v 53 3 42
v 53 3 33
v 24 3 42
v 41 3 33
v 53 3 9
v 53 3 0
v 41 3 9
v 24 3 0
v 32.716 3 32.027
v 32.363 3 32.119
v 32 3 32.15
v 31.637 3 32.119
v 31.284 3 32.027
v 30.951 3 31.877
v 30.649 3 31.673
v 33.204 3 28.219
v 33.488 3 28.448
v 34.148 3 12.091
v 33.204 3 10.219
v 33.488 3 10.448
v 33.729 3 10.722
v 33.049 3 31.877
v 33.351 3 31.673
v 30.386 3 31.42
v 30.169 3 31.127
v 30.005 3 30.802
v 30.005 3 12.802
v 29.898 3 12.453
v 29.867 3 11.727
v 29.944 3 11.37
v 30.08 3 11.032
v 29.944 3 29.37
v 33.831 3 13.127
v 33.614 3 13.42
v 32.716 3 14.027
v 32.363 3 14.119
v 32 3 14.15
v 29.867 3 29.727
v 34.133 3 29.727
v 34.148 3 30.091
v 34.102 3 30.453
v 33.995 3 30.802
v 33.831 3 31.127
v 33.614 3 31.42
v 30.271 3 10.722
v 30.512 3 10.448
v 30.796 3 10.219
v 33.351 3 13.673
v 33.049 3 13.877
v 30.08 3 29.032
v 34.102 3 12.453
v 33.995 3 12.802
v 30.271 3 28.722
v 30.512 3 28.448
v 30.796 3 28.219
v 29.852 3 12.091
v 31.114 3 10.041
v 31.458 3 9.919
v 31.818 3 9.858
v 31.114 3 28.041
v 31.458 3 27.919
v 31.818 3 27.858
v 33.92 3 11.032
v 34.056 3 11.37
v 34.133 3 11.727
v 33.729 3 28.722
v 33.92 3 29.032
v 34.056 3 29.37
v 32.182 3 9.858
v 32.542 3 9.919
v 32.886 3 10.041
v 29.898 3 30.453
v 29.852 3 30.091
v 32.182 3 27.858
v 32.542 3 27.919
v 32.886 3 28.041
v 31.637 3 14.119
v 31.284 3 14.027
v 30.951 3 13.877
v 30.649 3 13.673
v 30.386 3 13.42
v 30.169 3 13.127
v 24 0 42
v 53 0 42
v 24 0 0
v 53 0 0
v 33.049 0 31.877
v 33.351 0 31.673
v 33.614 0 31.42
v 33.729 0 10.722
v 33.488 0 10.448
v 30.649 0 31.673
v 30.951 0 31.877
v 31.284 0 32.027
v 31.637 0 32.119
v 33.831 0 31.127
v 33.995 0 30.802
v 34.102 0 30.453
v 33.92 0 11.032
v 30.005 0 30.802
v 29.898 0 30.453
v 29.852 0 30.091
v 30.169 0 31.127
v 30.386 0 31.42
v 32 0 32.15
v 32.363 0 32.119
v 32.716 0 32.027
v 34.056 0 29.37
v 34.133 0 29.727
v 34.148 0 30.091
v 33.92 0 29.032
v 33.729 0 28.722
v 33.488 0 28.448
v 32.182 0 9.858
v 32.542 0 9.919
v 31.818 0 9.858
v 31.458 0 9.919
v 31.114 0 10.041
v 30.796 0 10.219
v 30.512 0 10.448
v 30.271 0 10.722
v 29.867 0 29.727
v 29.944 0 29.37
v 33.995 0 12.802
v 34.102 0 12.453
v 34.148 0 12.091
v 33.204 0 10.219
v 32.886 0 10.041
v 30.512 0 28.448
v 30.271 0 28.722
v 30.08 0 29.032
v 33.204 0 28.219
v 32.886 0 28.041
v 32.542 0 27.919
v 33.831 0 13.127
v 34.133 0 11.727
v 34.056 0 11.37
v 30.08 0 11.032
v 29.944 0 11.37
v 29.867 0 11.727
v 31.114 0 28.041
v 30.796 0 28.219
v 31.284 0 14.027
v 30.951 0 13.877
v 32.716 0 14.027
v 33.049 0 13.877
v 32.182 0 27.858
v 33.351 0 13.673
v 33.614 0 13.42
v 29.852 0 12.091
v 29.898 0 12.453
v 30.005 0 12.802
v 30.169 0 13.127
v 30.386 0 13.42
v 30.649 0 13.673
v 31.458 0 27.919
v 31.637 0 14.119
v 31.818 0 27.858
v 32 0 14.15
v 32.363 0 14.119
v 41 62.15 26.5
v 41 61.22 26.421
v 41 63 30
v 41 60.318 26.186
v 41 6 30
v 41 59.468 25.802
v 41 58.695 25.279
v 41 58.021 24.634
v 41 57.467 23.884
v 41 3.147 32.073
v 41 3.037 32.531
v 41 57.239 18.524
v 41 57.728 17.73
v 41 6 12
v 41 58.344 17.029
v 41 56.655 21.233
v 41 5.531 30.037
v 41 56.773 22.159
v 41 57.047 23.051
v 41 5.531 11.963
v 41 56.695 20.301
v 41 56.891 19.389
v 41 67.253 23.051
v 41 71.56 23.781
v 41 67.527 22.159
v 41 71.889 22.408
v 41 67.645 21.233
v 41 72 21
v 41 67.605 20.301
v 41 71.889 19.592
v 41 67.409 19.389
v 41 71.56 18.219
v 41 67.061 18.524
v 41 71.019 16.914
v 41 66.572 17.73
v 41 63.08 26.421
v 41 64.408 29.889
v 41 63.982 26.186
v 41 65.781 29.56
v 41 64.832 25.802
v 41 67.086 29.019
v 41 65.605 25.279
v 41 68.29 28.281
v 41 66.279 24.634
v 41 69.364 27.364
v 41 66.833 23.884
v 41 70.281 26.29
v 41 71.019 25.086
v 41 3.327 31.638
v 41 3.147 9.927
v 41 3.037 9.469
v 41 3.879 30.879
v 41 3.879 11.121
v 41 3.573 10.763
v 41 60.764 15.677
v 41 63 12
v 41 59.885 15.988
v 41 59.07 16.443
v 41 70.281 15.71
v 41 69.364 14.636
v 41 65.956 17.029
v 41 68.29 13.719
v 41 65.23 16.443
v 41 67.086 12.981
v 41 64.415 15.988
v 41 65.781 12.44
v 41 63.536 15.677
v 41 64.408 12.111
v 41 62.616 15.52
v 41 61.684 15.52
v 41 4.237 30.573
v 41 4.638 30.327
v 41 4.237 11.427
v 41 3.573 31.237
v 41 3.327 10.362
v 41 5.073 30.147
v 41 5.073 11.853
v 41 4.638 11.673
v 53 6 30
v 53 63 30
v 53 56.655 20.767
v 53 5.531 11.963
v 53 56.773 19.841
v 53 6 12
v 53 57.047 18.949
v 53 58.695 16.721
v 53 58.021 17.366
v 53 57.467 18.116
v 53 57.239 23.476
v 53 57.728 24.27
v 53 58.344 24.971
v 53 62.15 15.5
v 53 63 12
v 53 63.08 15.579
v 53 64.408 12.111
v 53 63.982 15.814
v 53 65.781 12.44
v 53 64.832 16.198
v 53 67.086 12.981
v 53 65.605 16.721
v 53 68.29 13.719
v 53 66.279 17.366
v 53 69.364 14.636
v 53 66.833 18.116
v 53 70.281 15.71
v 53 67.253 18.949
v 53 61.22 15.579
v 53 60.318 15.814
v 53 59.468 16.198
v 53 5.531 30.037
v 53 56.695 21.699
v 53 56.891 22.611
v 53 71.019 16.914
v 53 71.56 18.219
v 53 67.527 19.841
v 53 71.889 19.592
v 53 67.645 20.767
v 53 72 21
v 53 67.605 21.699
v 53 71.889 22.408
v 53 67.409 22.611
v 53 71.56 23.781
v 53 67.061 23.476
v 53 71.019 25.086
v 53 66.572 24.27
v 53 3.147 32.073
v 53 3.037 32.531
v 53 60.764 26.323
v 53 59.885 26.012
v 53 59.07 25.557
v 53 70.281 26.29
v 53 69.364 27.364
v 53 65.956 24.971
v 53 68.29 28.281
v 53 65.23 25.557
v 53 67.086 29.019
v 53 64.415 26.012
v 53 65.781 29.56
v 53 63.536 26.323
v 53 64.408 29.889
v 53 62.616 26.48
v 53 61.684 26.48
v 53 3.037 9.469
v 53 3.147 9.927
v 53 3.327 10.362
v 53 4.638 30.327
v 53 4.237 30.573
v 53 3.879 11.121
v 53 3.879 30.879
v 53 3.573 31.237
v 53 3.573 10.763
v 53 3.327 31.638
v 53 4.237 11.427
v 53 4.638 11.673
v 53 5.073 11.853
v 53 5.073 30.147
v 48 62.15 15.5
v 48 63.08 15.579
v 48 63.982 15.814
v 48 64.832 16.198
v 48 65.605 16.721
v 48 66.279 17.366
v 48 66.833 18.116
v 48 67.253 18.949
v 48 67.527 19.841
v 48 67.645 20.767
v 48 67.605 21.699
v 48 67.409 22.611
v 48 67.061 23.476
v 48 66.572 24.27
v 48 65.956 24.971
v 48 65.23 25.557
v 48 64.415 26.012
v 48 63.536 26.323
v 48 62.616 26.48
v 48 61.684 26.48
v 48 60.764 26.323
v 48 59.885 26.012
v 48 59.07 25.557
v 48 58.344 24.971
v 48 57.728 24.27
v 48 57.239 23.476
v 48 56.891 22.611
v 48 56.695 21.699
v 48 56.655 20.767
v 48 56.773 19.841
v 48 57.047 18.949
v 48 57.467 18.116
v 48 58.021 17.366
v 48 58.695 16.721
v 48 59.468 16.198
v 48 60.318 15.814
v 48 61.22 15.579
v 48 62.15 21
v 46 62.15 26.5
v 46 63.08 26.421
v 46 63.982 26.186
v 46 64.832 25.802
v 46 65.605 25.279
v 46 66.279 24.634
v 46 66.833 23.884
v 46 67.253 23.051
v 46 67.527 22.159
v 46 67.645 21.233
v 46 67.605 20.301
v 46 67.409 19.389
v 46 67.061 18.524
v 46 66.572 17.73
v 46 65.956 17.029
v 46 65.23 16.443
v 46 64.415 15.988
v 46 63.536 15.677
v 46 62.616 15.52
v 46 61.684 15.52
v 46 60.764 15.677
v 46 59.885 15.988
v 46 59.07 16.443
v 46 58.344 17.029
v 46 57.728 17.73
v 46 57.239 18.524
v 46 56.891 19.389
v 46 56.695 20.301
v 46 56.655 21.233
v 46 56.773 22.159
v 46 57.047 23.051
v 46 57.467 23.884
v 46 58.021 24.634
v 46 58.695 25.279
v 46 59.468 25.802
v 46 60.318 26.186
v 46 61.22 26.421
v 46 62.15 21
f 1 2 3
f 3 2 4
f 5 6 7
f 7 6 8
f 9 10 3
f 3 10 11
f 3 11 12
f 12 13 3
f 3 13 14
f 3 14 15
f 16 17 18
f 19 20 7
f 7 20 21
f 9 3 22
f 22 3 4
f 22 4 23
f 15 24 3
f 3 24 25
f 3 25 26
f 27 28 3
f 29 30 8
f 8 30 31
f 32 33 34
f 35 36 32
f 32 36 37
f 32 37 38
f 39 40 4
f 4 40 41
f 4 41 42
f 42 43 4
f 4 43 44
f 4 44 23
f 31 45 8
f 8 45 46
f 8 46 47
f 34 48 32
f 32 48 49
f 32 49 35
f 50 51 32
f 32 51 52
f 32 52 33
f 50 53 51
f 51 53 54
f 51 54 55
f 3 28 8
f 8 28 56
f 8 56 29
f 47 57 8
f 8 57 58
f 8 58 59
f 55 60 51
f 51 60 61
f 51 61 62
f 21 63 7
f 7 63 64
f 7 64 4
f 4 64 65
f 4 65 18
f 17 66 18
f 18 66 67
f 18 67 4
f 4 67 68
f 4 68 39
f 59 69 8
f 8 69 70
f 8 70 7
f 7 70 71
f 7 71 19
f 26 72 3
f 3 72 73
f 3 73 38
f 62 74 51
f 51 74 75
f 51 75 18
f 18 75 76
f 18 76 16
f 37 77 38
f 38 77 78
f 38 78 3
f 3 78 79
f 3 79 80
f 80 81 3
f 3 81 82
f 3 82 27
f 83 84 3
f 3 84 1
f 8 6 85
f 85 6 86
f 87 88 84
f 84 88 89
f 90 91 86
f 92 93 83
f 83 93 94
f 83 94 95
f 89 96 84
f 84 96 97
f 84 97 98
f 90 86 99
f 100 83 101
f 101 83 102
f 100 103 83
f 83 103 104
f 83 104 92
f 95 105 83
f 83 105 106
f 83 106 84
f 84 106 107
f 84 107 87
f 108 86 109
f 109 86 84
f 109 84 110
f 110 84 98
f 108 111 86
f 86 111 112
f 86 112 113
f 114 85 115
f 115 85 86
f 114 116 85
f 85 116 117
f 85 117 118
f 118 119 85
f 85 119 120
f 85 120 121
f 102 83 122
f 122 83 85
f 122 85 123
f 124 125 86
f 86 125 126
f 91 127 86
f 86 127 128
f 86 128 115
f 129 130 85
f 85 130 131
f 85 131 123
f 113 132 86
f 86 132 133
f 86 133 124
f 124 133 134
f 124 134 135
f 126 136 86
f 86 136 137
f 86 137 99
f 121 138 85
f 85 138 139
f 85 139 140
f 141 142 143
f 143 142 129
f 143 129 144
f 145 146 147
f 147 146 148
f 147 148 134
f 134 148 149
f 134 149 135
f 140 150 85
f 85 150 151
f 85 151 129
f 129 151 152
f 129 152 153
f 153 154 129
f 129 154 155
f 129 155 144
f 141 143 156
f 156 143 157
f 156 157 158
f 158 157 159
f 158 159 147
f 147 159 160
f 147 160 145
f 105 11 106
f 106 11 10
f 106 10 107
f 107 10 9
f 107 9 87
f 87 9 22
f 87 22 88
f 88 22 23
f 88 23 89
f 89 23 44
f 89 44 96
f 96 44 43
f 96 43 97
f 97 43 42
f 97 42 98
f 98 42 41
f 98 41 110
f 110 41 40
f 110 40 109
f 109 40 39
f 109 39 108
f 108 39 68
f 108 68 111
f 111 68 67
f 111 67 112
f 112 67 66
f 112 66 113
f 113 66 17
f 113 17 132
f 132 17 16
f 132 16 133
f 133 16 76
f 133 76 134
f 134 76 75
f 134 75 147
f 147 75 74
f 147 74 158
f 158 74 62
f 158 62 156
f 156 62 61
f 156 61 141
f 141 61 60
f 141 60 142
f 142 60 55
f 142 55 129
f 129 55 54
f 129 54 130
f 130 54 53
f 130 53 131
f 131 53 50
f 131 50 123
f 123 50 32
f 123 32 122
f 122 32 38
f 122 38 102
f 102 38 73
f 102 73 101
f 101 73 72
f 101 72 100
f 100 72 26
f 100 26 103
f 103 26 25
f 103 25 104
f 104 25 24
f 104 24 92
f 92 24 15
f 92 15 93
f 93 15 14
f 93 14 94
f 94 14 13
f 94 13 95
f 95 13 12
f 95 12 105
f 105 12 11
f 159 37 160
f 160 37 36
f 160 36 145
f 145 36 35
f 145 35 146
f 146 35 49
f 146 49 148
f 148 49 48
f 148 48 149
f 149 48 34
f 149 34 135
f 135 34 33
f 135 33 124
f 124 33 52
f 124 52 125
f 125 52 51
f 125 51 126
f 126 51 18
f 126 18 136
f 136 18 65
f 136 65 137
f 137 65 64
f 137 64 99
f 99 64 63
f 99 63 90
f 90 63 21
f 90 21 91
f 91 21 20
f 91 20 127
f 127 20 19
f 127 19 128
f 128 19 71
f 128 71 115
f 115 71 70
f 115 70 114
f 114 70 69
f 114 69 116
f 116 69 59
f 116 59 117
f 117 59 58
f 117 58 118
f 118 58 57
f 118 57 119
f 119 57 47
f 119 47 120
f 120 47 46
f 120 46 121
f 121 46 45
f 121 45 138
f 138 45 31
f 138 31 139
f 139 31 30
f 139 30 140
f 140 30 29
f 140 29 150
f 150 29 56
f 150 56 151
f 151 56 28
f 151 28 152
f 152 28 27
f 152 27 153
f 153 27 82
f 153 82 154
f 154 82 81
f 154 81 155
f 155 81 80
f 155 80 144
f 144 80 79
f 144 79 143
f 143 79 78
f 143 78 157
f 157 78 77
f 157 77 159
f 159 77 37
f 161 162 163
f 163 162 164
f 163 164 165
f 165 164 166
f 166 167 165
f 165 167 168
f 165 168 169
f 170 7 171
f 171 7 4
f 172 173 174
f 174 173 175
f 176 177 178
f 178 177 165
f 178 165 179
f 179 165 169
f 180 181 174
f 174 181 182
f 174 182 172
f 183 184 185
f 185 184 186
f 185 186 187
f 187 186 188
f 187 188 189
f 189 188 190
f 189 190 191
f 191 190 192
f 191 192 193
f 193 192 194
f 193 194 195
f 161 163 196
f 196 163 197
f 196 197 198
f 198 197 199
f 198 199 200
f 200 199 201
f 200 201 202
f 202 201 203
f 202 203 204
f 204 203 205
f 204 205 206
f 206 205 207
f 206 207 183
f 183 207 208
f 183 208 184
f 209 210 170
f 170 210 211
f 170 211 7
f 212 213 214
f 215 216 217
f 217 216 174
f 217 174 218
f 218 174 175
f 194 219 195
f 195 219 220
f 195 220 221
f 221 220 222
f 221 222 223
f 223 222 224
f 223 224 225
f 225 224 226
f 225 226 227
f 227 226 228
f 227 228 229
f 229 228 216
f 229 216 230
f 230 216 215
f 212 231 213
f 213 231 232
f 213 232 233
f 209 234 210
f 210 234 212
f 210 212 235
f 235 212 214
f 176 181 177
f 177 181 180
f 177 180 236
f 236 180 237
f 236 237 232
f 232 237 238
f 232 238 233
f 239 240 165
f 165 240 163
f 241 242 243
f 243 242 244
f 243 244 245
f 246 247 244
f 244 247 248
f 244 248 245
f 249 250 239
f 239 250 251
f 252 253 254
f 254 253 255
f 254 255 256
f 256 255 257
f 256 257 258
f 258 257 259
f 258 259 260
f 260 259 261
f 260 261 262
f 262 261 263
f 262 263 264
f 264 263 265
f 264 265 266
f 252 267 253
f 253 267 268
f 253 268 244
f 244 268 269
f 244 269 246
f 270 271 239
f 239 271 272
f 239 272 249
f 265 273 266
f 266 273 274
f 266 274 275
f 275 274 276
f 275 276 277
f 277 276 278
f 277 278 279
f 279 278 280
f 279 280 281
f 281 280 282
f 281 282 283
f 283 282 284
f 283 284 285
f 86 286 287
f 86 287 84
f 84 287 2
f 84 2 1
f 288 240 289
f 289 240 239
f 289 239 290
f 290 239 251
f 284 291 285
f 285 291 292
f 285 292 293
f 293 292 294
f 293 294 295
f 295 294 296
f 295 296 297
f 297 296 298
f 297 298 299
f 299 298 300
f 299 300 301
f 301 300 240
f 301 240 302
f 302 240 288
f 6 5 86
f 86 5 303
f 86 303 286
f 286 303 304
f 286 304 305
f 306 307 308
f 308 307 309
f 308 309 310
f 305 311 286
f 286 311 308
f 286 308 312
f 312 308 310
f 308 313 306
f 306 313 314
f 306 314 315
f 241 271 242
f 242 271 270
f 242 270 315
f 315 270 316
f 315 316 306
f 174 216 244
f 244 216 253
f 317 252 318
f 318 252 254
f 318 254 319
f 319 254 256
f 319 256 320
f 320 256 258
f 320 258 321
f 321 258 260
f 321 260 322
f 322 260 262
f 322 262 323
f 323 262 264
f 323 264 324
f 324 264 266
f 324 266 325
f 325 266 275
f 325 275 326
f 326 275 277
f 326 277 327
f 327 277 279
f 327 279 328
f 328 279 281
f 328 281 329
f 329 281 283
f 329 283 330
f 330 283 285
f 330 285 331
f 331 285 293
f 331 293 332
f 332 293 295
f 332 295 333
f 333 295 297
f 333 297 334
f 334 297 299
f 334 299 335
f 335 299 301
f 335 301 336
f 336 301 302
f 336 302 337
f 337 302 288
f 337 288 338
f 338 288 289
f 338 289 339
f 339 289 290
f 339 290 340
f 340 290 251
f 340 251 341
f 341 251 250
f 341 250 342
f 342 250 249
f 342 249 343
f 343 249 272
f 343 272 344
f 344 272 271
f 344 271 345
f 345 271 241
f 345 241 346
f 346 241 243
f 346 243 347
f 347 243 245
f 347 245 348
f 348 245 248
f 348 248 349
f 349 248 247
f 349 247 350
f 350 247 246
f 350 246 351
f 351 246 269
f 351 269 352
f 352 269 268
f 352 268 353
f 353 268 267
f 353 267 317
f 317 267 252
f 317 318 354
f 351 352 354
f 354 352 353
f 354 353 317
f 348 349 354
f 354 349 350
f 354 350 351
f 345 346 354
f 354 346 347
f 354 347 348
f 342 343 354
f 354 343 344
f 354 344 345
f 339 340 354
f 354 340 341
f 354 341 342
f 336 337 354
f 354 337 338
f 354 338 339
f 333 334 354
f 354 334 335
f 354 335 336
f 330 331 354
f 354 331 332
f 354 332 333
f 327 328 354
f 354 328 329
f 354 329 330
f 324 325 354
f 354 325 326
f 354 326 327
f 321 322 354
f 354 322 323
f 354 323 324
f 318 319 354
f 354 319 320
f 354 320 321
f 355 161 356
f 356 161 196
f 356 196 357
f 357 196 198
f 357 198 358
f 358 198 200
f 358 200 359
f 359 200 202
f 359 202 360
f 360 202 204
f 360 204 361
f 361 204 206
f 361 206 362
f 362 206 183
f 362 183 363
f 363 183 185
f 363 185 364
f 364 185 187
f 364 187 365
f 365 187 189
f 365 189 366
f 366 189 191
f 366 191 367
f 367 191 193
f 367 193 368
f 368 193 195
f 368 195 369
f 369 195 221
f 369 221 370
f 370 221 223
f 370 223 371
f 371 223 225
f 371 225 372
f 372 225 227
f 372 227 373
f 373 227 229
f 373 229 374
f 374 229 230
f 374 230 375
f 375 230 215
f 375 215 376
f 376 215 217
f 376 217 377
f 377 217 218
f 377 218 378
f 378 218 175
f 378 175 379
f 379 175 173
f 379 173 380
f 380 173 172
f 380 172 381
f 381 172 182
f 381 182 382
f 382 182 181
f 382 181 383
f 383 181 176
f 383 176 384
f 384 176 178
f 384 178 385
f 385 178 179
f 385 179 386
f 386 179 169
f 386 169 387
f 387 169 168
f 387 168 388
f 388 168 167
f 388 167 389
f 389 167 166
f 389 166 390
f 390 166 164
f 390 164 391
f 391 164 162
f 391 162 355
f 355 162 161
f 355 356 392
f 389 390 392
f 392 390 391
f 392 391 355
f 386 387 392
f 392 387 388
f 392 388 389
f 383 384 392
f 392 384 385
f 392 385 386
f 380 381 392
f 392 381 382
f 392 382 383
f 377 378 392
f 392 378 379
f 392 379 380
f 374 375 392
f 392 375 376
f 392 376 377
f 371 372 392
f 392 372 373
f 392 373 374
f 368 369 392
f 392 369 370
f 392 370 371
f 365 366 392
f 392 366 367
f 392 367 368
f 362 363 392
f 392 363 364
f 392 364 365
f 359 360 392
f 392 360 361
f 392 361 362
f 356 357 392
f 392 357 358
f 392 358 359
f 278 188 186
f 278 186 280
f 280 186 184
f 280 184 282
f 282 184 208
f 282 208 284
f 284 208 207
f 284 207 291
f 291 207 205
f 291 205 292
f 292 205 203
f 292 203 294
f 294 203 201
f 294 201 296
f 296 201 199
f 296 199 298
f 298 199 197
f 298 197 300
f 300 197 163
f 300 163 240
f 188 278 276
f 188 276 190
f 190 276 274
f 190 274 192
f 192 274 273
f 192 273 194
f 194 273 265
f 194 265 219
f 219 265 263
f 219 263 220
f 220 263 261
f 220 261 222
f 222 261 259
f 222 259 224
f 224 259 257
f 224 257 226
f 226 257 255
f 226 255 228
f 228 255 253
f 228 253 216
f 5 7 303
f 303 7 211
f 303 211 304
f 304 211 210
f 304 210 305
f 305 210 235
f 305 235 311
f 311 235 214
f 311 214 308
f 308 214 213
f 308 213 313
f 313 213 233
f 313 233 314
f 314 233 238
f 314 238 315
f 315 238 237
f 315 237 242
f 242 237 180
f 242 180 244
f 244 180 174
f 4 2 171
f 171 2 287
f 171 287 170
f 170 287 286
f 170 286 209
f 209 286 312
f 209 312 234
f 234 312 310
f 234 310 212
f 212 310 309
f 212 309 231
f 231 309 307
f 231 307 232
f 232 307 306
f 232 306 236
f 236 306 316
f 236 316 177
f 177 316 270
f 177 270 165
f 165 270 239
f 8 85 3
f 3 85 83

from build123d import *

# Parameters (mm, degrees)
SKETCH1_W            = 94
SKETCH1_H            = 42
BOSS_EXTRUDE1_DEPTH  = 3
SKETCH2_W            = 4
SKETCH2_H            = 42
BOSS_EXTRUDE2_DEPTH  = 47
SKETCH3_R            = 12.5
SKETCH3_R_2          = 1.6
CUT_EXTRUDE1_DEPTH   = 114.176852757
SKETCH4_W            = 42
SKETCH4_H            = 5
BOSS_EXTRUDE3_DEPTH  = 40
SKETCH5_W            = 42
SKETCH5_H            = 5
BOSS_EXTRUDE4_DEPTH  = 38
SKETCH7_W            = 42
SKETCH7_H            = 42
SKETCH7_W_2          = 44
BOSS_EXTRUDE6_DEPTH  = 5
SKETCH9_R            = 2.15
CUT_EXTRUDE2_DEPTH   = 149.731301346
SKETCH11_W           = 10
SKETCH11_H           = 18
BOSS_EXTRUDE7_DEPTH  = 20
SKETCH13_R           = 5.5
CUT_EXTRUDE3_DEPTH   = 169.988165266
BOSS_EXTRUDE11_DEPTH = 5
SKETCH23_W           = 10
SKETCH23_H           = 26
BOSS_EXTRUDE12_DEPTH = 50
CUT_EXTRUDE7_DEPTH   = 193.595430891
SKETCH25_W           = 10
SKETCH25_H           = 18
BOSS_EXTRUDE13_DEPTH = 20
SKETCH26_R           = 5.5
CUT_EXTRUDE8_DEPTH   = 193.595430891
SKETCH27_W           = 12
SKETCH27_H           = 18
BOSS_EXTRUDE14_DEPTH = 69
CUT_EXTRUDE10_START  = -5
SKETCH28_R           = 5.5
CUT_EXTRUDE10_DEPTH  = 5
SKETCH29_R           = 5.5
CUT_EXTRUDE11_DEPTH  = 5
FILLET4_R            = 9
FILLET3_R            = 3
SKETCH30_W           = 60
SKETCH30_H           = 42
SKETCH30_W_2         = 81
SKETCH30_H_2         = 100
CUT_EXTRUDE12_DEPTH  = 181.413414135
SKETCH31_W           = 2
SKETCH31_H           = 42
CUT_EXTRUDE13_DEPTH  = 10


# Some blends are built 0.0001 mm under size
with BuildPart() as part:
    # Sketch1 → Boss-Extrude1 (new body)
    with BuildSketch(Plane(origin=(0, 0, 0), x_dir=(1, 0, 0), z_dir=(0, 1, 0))):
        with Locations((47, -21)):
            Rectangle(SKETCH1_W, SKETCH1_H)
    extrude(amount=BOSS_EXTRUDE1_DEPTH)

    # Sketch2 → Boss-Extrude2 (add)
    with BuildSketch(Plane.XZ):
        with Locations((2, 21)):
            Rectangle(SKETCH2_W, SKETCH2_H)
        with Locations((92, 21)):
            Rectangle(SKETCH2_W, SKETCH2_H)
    extrude(amount=-BOSS_EXTRUDE2_DEPTH)

    # Sketch3 → Cut-Extrude1 (cut, through all)
    with BuildSketch(Plane(origin=(94, 0, 0), x_dir=(0, 0, -1), z_dir=(1, 0, 0))):
        with Locations((-21, 26)):
            Circle(SKETCH3_R)
        with Locations((-36.5, 41.5)):
            Circle(SKETCH3_R_2)
        with Locations((-5.5, 41.5)):
            Circle(SKETCH3_R_2)
        with Locations((-36.5, 10.5)):
            Circle(SKETCH3_R_2)
        with Locations((-5.5, 10.5)):
            Circle(SKETCH3_R_2)
    extrude(amount=-CUT_EXTRUDE1_DEPTH, mode=Mode.SUBTRACT)

    # Sketch4 → Boss-Extrude3 (add)
    with BuildSketch(Plane(origin=(94, 0, 0), x_dir=(0, 0, -1), z_dir=(1, 0, 0))):
        with Locations((-21, 2.5)):
            Rectangle(SKETCH4_W, SKETCH4_H)
    extrude(amount=BOSS_EXTRUDE3_DEPTH)

    # Sketch5 → Boss-Extrude4 (add)
    with BuildSketch(Plane.ZY):
        with Locations((21, 2.5)):
            Rectangle(SKETCH5_W, SKETCH5_H)
    extrude(amount=BOSS_EXTRUDE4_DEPTH)

    # Sketch7 → Boss-Extrude6 (add)
    with BuildSketch(Plane(origin=(0, 47, 0), x_dir=(1, 0, 0), z_dir=(0, 1, 0))):
        with Locations((-17, -21)):
            Rectangle(SKETCH7_W, SKETCH7_H)
        with Locations((112, -21)):
            Rectangle(SKETCH7_W_2, SKETCH7_H)
    extrude(amount=BOSS_EXTRUDE6_DEPTH)

    # Sketch9 → Cut-Extrude2 (cut, through all)
    with BuildSketch(Plane(origin=(0, 3, 0), x_dir=(1, 0, 0), z_dir=(0, 1, 0))):
        with Locations(Location((83, -20, 0), (0, 0, 270))):
            Circle(SKETCH9_R)
        with Locations(Location((65, -20, 0), (0, 0, 270))):
            Circle(SKETCH9_R)
        with Locations(Location((74, -11, 0), (0, 0, 270))):
            Circle(SKETCH9_R)
        with Locations(Location((74, -29, 0), (0, 0, 270))):
            Circle(SKETCH9_R)
        with Locations(Location((16, -12, 0), (0, 0, 270))):
            Circle(SKETCH9_R)
        with Locations(Location((16, -30, 0), (0, 0, 270))):
            Circle(SKETCH9_R)
        with Locations(Location((32, -12, 0), (0, 0, 270))):
            Circle(SKETCH9_R)
        with Locations(Location((32, -30, 0), (0, 0, 270))):
            Circle(SKETCH9_R)
    extrude(amount=-CUT_EXTRUDE2_DEPTH, mode=Mode.SUBTRACT)

    # Sketch11 → Boss-Extrude7 (add)
    with BuildSketch(Plane(origin=(0, 52, 0), x_dir=(1, 0, 0), z_dir=(0, 1, 0))):
        with Locations((-8, -21)):
            Rectangle(SKETCH11_W, SKETCH11_H)
        with Locations((107, -21)):
            Rectangle(SKETCH11_W, SKETCH11_H)
    extrude(amount=BOSS_EXTRUDE7_DEPTH)

    # Sketch13 → Cut-Extrude3 (cut, through all)
    with BuildSketch(Plane.ZY.offset(13)):
        with Locations((21, 62.15)):
            Circle(SKETCH13_R)
    extrude(amount=-CUT_EXTRUDE3_DEPTH, mode=Mode.SUBTRACT)

    # Sketch20 → Boss-Extrude11 (add)
    with BuildSketch(Plane.XY.offset(42)):
        Polygon((134, 0), (134, 52), (90, 52), (90, 0), (95, 0), (95, 20), (102, 26), (112, 26), (129, 20), (129, 0), align=None)
    extrude(amount=BOSS_EXTRUDE11_DEPTH)

    # Sketch23 → Boss-Extrude12 (add)
    with BuildSketch(Plane.XY.offset(47)):
        with Locations((107, 39)):
            Rectangle(SKETCH23_W, SKETCH23_H)
    extrude(amount=BOSS_EXTRUDE12_DEPTH)

    # Sketch24 → Cut-Extrude7 (cut, through all)
    with BuildSketch(Plane(origin=(112, 0, 0), x_dir=(0, 0, -1), z_dir=(1, 0, 0))):
        Polygon((-47, 26), (-97, 39), (-97, 26), align=None)
    extrude(amount=-CUT_EXTRUDE7_DEPTH, mode=Mode.SUBTRACT)

    # Sketch25 → Boss-Extrude13 (add)
    with BuildSketch(Plane(origin=(0, 52, 0), x_dir=(1, 0, 0), z_dir=(0, 1, 0))):
        with Locations((107, -71)):
            Rectangle(SKETCH25_W, SKETCH25_H)
    extrude(amount=BOSS_EXTRUDE13_DEPTH)

    # Sketch26 → Cut-Extrude8 (cut, through all)
    with BuildSketch(Plane(origin=(112, 0, 0), x_dir=(0, 0, -1), z_dir=(1, 0, 0))):
        with Locations((-71, 62.15)):
            Circle(SKETCH26_R)
    extrude(amount=-CUT_EXTRUDE8_DEPTH, mode=Mode.SUBTRACT)

    # Sketch27 → Boss-Extrude14 (add)
    with BuildSketch(Plane(origin=(0, 3, 0), x_dir=(1, 0, 0), z_dir=(0, 1, 0))):
        with Locations((47, -21)):
            Rectangle(SKETCH27_W, SKETCH27_H)
    extrude(amount=BOSS_EXTRUDE14_DEPTH)

    # Sketch28 → Cut-Extrude10 (cut)
    with BuildSketch(Plane(origin=(53, 0, 0), x_dir=(0, 0, -1), z_dir=(1, 0, 0)).offset(CUT_EXTRUDE10_START)):
        with Locations(Location((-21, 62.15, 0), (0, 0, 180))):
            Circle(SKETCH28_R)
    extrude(amount=CUT_EXTRUDE10_DEPTH, mode=Mode.SUBTRACT)

    # Sketch29 → Cut-Extrude11 (cut)
    with BuildSketch(Plane.ZY.offset(-41)):
        with Locations((21, 62.15)):
            Circle(SKETCH29_R)
    extrude(amount=-CUT_EXTRUDE11_DEPTH, mode=Mode.SUBTRACT)

    # Fillet4
    fillet4_edges = [part.edges().sort_by_distance(p)[0] for p in [
        (-8, 72, 12),
        (-8, 72, 30),
        (107, 72, 12),
        (107, 72, 30),
        (107, 72, 62),
        (107, 72, 80),
        (47, 72, 12),
        (47, 72, 30),
    ]]
    fillet(fillet4_edges, radius=FILLET4_R - 0.0001)  # a hair under: the kernel refuses the full size

    # Fillet3
    # the kernel refuses this fillet: 3 mm, written as the material it adds along each edge
    with BuildSketch(Plane(origin=(-3, 52, 30), x_dir=(0, 1, 0), z_dir=(-1, 0, 0)), Plane(origin=(112, 52, 80), x_dir=(0, 1, 0), z_dir=(-1, 0, 0))) as fillet3_piece_1:
        with BuildLine():
            CenterArc((FILLET3_R, -FILLET3_R), FILLET3_R, 90, 90)
            Line((0, -FILLET3_R), (0, 0))
            Line((0, 0), (FILLET3_R, 0))
        make_face()
    extrude(amount=10)
    with BuildSketch(Plane(origin=(-13, 52, 12), x_dir=(0, 0, -1), z_dir=(1, 0, 0)), Plane(origin=(112, 52, 30), x_dir=(0, 0, 1), z_dir=(-1, 0, 0)), Plane(origin=(102, 52, 12), x_dir=(0, 0, -1), z_dir=(1, 0, 0)), Plane(origin=(102, 52, 62), x_dir=(0, 0, -1), z_dir=(1, 0, 0))) as fillet3_piece_2:
        with BuildLine():
            CenterArc((FILLET3_R, FILLET3_R), FILLET3_R, 180, 90)
            Line((0, FILLET3_R), (0, 0))
            Line((0, 0), (FILLET3_R, 0))
        make_face()
    extrude(amount=10)
    with BuildSketch(Plane(origin=(95, 20, 42), x_dir=(0, -1, 0), z_dir=(0, 0, 1))) as fillet3_piece_3:
        with BuildLine():
            CenterArc((FILLET3_R * 0.45993492247, FILLET3_R), FILLET3_R, 220.601294645, 49.398705355)
            Line((-FILLET3_R * 0.299321679895, FILLET3_R * 0.349208626544), (0, 0))
            Line((0, 0), (FILLET3_R * 0.45993492247, 0))
        make_face()
    extrude(amount=5)
    with BuildSketch(Plane(origin=(102, 26, 42), x_dir=(-0.7592566023652966, -0.6507913734559685, 0), z_dir=(0, 0, 1))) as fillet3_piece_4:
        with BuildLine():
            CenterArc((FILLET3_R * 0.369924076215, FILLET3_R), FILLET3_R, 229.398705355, 40.601294645)
            Line((-FILLET3_R * 0.28086729724, FILLET3_R * 0.240743397635), (0, 0))
            Line((0, 0), (FILLET3_R * 0.369924076215, 0))
        make_face()
    extrude(amount=5)
    with BuildSketch(Plane(origin=(112, 26, 42), x_dir=(0.942990333582889, -0.3328201177351389, 0), z_dir=(0, 0, 1))) as fillet3_piece_5:
        with BuildLine():
            CenterArc((FILLET3_R * 0.171292729553, -FILLET3_R), FILLET3_R, 90, 19.440034828)
            Line((-FILLET3_R * 0.161527388182, -FILLET3_R * 0.0570096664171), (0, 0))
            Line((0, 0), (FILLET3_R * 0.171292729553, 0))
        make_face()
    extrude(amount=5)
    with BuildSketch(Plane(origin=(129, 20, 42), x_dir=(0, -1, 0), z_dir=(0, 0, 1))) as fillet3_piece_6:
        with BuildLine():
            CenterArc((FILLET3_R * 0.707515081019, -FILLET3_R), FILLET3_R, 90, 70.559965172)
            Line((-FILLET3_R * 0.235475252564, -FILLET3_R * 0.667179882265), (0, 0))
            Line((0, 0), (FILLET3_R * 0.707515081019, 0))
        make_face()
    extrude(amount=5)
    with BuildSketch(Plane(origin=(53, 3, 30), x_dir=(0, 0, 1), z_dir=(-1, 0, 0)), Plane(origin=(41, 3, 12), x_dir=(0, 0, -1), z_dir=(1, 0, 0))) as fillet3_piece_7:
        with BuildLine():
            CenterArc((FILLET3_R, FILLET3_R), FILLET3_R, 180, 90)
            Line((0, FILLET3_R), (0, 0))
            Line((0, 0), (FILLET3_R, 0))
        make_face()
    extrude(amount=12)
    # the kernel refuses this fillet: 3 mm, written as the material it takes off along each edge
    with BuildSketch(Plane(origin=(94.5, 52, 97), x_dir=(0, 0, -1), z_dir=(1, 0, 0))) as fillet3_2_piece_1:
        with BuildLine():
            CenterArc((FILLET3_R, -FILLET3_R), FILLET3_R, 90, 90)
            Line((0, -FILLET3_R), (0, 0))
            Line((0, 0), (FILLET3_R, 0))
        make_face()
    extrude(amount=25, mode=Mode.SUBTRACT)
    with BuildSketch(Plane(origin=(117.799354812, 39, 97), x_dir=(0, -0.25163385176495195, -0.9678225067882716), z_dir=(-1, 0, 0))) as fillet3_2_piece_2:
        with BuildLine():
            CenterArc((FILLET3_R * 0.773247308247, -FILLET3_R), FILLET3_R, 90, 75.425783802)
            Line((-FILLET3_R * 0.194575198541, -FILLET3_R * 0.748366148235), (0, 0))
            Line((0, 0), (FILLET3_R * 0.773247308247, 0))
        make_face()
    extrude(amount=21.598709624, mode=Mode.SUBTRACT)

    # Sketch30 → Cut-Extrude12 (cut, through all)
    with BuildSketch(Plane.XZ):
        with Locations((-8, 21)):
            Rectangle(SKETCH30_W, SKETCH30_H)
        with Locations((93.5, 50)):
            Rectangle(SKETCH30_W_2, SKETCH30_H_2)
    extrude(amount=-CUT_EXTRUDE12_DEPTH, mode=Mode.SUBTRACT)

    # Sketch31 → Cut-Extrude13 (cut)
    with BuildSketch(Plane(origin=(0, 3, 0), x_dir=(1, 0, 0), z_dir=(0, 1, 0))):
        with Locations((23, -21)):
            Rectangle(SKETCH31_W, SKETCH31_H)
    extrude(amount=-CUT_EXTRUDE13_DEPTH, mode=Mode.SUBTRACT)


solid = part.part
